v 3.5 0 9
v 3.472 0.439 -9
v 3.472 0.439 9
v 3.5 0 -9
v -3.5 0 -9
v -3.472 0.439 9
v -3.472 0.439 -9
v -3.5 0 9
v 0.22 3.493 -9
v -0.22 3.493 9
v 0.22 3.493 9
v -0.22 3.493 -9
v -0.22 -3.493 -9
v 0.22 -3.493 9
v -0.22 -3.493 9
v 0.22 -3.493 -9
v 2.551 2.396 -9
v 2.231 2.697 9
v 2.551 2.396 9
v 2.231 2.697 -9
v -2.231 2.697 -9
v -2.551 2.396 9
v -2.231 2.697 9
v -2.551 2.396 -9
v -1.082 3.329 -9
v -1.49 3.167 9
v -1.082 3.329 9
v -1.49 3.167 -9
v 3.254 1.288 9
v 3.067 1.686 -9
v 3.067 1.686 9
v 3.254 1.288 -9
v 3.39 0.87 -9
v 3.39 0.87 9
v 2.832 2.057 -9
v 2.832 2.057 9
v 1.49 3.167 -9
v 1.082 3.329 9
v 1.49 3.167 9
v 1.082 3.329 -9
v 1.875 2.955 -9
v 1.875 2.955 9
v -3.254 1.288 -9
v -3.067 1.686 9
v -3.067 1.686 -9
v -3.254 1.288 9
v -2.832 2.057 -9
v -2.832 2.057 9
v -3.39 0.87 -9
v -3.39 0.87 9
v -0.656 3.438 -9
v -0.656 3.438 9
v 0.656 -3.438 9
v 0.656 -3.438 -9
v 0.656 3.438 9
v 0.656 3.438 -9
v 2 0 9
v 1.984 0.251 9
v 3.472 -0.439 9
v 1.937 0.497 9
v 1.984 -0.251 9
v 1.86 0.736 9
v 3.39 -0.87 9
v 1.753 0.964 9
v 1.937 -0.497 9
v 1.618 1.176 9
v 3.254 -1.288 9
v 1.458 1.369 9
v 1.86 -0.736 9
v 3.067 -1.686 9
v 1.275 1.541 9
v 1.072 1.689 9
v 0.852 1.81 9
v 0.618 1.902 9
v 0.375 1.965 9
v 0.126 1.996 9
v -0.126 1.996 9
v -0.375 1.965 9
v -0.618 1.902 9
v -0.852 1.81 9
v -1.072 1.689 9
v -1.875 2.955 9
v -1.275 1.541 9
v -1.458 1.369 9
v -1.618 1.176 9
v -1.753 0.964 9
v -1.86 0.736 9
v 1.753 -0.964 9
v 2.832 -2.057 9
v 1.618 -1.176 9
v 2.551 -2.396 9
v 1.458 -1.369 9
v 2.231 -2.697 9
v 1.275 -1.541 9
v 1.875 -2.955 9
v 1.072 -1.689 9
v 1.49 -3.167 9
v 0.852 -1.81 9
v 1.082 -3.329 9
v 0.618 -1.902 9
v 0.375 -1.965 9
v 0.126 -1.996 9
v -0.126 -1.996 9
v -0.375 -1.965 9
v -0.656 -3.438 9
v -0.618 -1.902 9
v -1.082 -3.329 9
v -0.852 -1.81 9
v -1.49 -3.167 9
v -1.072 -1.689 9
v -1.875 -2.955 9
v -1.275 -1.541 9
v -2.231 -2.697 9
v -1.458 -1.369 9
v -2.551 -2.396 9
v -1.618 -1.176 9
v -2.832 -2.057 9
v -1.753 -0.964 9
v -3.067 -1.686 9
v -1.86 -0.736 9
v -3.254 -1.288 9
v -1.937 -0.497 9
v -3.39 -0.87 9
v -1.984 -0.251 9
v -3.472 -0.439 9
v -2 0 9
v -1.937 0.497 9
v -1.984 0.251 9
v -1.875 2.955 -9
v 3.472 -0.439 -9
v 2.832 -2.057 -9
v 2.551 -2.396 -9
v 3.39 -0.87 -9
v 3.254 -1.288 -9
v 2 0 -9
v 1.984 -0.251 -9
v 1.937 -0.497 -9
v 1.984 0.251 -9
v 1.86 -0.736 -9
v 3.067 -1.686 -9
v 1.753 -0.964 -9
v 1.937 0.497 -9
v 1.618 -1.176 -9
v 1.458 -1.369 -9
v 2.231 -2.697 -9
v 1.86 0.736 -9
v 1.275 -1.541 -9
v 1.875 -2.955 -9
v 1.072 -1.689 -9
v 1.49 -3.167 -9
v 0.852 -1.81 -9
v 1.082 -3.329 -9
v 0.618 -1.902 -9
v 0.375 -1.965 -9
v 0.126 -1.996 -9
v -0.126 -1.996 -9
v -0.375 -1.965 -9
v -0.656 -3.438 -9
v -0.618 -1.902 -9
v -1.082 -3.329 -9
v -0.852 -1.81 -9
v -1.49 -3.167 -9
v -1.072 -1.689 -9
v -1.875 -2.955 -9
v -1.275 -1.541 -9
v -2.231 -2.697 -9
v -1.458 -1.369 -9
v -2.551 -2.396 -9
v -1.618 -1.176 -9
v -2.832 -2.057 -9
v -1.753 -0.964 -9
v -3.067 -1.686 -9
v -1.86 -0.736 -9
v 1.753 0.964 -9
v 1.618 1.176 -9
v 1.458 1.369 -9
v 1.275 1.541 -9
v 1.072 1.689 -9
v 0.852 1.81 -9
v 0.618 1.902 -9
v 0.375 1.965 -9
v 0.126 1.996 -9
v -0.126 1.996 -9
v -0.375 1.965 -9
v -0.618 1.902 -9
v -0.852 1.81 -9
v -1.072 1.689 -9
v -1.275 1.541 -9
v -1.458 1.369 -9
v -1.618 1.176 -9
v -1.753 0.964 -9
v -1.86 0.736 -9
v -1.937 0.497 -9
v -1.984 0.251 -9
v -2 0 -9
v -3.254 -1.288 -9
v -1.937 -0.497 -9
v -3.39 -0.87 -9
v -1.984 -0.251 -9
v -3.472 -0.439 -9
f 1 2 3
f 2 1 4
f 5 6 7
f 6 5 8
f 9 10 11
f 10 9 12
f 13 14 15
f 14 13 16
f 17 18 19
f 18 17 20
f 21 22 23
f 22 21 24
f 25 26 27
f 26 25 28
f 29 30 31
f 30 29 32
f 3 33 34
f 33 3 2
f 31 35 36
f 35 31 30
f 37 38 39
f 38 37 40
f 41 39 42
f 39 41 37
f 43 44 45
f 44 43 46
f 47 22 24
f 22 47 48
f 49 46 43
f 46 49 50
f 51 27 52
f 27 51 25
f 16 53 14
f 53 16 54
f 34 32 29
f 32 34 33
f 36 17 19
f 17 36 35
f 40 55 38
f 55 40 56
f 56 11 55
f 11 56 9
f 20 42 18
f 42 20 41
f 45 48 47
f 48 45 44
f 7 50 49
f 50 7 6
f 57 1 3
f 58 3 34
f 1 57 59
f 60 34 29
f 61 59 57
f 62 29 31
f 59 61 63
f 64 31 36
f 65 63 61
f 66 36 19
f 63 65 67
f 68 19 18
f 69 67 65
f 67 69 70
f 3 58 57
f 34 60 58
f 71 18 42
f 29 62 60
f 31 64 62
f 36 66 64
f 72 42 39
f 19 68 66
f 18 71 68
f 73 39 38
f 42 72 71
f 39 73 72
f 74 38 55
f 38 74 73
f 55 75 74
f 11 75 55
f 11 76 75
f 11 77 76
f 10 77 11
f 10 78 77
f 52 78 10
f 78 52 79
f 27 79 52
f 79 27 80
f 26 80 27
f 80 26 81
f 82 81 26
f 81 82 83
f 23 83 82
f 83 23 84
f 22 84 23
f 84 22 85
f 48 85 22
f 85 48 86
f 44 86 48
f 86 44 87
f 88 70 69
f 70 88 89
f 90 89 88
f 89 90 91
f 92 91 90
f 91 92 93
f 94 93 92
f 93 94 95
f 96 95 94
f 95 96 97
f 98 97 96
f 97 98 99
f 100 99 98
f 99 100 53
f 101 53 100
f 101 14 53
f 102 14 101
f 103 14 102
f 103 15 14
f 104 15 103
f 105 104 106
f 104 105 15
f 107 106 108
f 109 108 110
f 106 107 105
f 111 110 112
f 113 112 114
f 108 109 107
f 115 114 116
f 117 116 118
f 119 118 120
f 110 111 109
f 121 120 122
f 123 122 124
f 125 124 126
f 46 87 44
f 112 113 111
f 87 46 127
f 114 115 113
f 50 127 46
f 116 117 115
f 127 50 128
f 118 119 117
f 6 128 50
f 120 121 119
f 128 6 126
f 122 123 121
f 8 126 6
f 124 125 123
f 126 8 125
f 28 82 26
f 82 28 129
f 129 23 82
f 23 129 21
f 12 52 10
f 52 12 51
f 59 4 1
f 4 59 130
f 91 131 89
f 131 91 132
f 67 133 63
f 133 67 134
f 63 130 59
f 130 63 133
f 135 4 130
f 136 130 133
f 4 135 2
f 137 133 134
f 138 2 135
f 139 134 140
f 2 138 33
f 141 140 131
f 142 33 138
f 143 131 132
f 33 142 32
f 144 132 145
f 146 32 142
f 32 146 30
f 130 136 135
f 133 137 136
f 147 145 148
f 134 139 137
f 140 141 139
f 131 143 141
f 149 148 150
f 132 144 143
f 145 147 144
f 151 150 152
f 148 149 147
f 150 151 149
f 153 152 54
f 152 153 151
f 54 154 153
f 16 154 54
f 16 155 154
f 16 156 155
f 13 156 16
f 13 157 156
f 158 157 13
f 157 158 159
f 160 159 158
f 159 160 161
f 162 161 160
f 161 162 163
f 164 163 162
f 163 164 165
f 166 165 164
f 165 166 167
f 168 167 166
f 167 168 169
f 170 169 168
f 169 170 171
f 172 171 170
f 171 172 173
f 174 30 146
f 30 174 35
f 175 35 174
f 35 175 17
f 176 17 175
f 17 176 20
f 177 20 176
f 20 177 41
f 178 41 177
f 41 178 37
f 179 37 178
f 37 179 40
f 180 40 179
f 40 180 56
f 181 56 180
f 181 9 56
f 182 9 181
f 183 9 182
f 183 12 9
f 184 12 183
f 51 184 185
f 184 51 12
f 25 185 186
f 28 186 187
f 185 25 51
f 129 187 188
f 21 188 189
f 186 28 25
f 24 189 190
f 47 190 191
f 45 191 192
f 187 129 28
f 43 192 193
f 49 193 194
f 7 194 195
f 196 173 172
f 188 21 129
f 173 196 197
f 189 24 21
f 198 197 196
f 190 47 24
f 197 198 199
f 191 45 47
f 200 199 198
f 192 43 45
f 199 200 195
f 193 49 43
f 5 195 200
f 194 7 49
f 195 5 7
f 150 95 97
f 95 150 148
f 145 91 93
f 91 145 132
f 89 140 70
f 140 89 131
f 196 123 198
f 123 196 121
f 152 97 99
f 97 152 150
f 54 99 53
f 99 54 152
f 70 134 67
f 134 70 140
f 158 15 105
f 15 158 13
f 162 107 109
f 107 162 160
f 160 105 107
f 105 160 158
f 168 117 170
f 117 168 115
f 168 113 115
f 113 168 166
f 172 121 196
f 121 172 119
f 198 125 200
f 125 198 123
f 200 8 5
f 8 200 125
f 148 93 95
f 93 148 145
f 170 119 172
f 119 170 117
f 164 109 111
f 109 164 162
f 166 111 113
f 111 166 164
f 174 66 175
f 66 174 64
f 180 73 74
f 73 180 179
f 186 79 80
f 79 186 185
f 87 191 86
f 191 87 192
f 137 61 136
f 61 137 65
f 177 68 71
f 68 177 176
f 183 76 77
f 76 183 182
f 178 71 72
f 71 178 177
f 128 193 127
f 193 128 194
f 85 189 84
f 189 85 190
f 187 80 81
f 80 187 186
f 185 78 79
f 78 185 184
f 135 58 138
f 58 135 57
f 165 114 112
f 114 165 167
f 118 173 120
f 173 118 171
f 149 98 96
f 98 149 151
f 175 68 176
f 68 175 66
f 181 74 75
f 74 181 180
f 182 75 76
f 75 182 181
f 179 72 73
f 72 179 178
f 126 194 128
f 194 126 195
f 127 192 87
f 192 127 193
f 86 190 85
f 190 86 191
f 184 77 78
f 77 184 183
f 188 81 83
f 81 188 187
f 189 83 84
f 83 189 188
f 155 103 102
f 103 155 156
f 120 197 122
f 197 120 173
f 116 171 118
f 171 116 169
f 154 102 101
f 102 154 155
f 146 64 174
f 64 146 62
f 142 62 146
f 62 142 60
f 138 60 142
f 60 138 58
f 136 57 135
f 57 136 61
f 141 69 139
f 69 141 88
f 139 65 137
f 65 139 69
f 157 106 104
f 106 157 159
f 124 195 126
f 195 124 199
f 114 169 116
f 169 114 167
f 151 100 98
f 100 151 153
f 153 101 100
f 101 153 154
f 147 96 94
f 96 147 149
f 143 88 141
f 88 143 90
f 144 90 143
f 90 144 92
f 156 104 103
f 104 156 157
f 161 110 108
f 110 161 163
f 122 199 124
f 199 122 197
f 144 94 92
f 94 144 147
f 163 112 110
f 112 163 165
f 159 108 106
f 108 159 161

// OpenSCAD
$fn = 50;


difference() {
	union() {
		translate(v = [0, 0, -9.0000000000]) {
			cylinder(h = 18, r = 3.5000000000);
		}
	}
	union() {
		translate(v = [0, 0, -100.0000000000]) {
			cylinder(h = 200, r = 2);
		}
	}
}
